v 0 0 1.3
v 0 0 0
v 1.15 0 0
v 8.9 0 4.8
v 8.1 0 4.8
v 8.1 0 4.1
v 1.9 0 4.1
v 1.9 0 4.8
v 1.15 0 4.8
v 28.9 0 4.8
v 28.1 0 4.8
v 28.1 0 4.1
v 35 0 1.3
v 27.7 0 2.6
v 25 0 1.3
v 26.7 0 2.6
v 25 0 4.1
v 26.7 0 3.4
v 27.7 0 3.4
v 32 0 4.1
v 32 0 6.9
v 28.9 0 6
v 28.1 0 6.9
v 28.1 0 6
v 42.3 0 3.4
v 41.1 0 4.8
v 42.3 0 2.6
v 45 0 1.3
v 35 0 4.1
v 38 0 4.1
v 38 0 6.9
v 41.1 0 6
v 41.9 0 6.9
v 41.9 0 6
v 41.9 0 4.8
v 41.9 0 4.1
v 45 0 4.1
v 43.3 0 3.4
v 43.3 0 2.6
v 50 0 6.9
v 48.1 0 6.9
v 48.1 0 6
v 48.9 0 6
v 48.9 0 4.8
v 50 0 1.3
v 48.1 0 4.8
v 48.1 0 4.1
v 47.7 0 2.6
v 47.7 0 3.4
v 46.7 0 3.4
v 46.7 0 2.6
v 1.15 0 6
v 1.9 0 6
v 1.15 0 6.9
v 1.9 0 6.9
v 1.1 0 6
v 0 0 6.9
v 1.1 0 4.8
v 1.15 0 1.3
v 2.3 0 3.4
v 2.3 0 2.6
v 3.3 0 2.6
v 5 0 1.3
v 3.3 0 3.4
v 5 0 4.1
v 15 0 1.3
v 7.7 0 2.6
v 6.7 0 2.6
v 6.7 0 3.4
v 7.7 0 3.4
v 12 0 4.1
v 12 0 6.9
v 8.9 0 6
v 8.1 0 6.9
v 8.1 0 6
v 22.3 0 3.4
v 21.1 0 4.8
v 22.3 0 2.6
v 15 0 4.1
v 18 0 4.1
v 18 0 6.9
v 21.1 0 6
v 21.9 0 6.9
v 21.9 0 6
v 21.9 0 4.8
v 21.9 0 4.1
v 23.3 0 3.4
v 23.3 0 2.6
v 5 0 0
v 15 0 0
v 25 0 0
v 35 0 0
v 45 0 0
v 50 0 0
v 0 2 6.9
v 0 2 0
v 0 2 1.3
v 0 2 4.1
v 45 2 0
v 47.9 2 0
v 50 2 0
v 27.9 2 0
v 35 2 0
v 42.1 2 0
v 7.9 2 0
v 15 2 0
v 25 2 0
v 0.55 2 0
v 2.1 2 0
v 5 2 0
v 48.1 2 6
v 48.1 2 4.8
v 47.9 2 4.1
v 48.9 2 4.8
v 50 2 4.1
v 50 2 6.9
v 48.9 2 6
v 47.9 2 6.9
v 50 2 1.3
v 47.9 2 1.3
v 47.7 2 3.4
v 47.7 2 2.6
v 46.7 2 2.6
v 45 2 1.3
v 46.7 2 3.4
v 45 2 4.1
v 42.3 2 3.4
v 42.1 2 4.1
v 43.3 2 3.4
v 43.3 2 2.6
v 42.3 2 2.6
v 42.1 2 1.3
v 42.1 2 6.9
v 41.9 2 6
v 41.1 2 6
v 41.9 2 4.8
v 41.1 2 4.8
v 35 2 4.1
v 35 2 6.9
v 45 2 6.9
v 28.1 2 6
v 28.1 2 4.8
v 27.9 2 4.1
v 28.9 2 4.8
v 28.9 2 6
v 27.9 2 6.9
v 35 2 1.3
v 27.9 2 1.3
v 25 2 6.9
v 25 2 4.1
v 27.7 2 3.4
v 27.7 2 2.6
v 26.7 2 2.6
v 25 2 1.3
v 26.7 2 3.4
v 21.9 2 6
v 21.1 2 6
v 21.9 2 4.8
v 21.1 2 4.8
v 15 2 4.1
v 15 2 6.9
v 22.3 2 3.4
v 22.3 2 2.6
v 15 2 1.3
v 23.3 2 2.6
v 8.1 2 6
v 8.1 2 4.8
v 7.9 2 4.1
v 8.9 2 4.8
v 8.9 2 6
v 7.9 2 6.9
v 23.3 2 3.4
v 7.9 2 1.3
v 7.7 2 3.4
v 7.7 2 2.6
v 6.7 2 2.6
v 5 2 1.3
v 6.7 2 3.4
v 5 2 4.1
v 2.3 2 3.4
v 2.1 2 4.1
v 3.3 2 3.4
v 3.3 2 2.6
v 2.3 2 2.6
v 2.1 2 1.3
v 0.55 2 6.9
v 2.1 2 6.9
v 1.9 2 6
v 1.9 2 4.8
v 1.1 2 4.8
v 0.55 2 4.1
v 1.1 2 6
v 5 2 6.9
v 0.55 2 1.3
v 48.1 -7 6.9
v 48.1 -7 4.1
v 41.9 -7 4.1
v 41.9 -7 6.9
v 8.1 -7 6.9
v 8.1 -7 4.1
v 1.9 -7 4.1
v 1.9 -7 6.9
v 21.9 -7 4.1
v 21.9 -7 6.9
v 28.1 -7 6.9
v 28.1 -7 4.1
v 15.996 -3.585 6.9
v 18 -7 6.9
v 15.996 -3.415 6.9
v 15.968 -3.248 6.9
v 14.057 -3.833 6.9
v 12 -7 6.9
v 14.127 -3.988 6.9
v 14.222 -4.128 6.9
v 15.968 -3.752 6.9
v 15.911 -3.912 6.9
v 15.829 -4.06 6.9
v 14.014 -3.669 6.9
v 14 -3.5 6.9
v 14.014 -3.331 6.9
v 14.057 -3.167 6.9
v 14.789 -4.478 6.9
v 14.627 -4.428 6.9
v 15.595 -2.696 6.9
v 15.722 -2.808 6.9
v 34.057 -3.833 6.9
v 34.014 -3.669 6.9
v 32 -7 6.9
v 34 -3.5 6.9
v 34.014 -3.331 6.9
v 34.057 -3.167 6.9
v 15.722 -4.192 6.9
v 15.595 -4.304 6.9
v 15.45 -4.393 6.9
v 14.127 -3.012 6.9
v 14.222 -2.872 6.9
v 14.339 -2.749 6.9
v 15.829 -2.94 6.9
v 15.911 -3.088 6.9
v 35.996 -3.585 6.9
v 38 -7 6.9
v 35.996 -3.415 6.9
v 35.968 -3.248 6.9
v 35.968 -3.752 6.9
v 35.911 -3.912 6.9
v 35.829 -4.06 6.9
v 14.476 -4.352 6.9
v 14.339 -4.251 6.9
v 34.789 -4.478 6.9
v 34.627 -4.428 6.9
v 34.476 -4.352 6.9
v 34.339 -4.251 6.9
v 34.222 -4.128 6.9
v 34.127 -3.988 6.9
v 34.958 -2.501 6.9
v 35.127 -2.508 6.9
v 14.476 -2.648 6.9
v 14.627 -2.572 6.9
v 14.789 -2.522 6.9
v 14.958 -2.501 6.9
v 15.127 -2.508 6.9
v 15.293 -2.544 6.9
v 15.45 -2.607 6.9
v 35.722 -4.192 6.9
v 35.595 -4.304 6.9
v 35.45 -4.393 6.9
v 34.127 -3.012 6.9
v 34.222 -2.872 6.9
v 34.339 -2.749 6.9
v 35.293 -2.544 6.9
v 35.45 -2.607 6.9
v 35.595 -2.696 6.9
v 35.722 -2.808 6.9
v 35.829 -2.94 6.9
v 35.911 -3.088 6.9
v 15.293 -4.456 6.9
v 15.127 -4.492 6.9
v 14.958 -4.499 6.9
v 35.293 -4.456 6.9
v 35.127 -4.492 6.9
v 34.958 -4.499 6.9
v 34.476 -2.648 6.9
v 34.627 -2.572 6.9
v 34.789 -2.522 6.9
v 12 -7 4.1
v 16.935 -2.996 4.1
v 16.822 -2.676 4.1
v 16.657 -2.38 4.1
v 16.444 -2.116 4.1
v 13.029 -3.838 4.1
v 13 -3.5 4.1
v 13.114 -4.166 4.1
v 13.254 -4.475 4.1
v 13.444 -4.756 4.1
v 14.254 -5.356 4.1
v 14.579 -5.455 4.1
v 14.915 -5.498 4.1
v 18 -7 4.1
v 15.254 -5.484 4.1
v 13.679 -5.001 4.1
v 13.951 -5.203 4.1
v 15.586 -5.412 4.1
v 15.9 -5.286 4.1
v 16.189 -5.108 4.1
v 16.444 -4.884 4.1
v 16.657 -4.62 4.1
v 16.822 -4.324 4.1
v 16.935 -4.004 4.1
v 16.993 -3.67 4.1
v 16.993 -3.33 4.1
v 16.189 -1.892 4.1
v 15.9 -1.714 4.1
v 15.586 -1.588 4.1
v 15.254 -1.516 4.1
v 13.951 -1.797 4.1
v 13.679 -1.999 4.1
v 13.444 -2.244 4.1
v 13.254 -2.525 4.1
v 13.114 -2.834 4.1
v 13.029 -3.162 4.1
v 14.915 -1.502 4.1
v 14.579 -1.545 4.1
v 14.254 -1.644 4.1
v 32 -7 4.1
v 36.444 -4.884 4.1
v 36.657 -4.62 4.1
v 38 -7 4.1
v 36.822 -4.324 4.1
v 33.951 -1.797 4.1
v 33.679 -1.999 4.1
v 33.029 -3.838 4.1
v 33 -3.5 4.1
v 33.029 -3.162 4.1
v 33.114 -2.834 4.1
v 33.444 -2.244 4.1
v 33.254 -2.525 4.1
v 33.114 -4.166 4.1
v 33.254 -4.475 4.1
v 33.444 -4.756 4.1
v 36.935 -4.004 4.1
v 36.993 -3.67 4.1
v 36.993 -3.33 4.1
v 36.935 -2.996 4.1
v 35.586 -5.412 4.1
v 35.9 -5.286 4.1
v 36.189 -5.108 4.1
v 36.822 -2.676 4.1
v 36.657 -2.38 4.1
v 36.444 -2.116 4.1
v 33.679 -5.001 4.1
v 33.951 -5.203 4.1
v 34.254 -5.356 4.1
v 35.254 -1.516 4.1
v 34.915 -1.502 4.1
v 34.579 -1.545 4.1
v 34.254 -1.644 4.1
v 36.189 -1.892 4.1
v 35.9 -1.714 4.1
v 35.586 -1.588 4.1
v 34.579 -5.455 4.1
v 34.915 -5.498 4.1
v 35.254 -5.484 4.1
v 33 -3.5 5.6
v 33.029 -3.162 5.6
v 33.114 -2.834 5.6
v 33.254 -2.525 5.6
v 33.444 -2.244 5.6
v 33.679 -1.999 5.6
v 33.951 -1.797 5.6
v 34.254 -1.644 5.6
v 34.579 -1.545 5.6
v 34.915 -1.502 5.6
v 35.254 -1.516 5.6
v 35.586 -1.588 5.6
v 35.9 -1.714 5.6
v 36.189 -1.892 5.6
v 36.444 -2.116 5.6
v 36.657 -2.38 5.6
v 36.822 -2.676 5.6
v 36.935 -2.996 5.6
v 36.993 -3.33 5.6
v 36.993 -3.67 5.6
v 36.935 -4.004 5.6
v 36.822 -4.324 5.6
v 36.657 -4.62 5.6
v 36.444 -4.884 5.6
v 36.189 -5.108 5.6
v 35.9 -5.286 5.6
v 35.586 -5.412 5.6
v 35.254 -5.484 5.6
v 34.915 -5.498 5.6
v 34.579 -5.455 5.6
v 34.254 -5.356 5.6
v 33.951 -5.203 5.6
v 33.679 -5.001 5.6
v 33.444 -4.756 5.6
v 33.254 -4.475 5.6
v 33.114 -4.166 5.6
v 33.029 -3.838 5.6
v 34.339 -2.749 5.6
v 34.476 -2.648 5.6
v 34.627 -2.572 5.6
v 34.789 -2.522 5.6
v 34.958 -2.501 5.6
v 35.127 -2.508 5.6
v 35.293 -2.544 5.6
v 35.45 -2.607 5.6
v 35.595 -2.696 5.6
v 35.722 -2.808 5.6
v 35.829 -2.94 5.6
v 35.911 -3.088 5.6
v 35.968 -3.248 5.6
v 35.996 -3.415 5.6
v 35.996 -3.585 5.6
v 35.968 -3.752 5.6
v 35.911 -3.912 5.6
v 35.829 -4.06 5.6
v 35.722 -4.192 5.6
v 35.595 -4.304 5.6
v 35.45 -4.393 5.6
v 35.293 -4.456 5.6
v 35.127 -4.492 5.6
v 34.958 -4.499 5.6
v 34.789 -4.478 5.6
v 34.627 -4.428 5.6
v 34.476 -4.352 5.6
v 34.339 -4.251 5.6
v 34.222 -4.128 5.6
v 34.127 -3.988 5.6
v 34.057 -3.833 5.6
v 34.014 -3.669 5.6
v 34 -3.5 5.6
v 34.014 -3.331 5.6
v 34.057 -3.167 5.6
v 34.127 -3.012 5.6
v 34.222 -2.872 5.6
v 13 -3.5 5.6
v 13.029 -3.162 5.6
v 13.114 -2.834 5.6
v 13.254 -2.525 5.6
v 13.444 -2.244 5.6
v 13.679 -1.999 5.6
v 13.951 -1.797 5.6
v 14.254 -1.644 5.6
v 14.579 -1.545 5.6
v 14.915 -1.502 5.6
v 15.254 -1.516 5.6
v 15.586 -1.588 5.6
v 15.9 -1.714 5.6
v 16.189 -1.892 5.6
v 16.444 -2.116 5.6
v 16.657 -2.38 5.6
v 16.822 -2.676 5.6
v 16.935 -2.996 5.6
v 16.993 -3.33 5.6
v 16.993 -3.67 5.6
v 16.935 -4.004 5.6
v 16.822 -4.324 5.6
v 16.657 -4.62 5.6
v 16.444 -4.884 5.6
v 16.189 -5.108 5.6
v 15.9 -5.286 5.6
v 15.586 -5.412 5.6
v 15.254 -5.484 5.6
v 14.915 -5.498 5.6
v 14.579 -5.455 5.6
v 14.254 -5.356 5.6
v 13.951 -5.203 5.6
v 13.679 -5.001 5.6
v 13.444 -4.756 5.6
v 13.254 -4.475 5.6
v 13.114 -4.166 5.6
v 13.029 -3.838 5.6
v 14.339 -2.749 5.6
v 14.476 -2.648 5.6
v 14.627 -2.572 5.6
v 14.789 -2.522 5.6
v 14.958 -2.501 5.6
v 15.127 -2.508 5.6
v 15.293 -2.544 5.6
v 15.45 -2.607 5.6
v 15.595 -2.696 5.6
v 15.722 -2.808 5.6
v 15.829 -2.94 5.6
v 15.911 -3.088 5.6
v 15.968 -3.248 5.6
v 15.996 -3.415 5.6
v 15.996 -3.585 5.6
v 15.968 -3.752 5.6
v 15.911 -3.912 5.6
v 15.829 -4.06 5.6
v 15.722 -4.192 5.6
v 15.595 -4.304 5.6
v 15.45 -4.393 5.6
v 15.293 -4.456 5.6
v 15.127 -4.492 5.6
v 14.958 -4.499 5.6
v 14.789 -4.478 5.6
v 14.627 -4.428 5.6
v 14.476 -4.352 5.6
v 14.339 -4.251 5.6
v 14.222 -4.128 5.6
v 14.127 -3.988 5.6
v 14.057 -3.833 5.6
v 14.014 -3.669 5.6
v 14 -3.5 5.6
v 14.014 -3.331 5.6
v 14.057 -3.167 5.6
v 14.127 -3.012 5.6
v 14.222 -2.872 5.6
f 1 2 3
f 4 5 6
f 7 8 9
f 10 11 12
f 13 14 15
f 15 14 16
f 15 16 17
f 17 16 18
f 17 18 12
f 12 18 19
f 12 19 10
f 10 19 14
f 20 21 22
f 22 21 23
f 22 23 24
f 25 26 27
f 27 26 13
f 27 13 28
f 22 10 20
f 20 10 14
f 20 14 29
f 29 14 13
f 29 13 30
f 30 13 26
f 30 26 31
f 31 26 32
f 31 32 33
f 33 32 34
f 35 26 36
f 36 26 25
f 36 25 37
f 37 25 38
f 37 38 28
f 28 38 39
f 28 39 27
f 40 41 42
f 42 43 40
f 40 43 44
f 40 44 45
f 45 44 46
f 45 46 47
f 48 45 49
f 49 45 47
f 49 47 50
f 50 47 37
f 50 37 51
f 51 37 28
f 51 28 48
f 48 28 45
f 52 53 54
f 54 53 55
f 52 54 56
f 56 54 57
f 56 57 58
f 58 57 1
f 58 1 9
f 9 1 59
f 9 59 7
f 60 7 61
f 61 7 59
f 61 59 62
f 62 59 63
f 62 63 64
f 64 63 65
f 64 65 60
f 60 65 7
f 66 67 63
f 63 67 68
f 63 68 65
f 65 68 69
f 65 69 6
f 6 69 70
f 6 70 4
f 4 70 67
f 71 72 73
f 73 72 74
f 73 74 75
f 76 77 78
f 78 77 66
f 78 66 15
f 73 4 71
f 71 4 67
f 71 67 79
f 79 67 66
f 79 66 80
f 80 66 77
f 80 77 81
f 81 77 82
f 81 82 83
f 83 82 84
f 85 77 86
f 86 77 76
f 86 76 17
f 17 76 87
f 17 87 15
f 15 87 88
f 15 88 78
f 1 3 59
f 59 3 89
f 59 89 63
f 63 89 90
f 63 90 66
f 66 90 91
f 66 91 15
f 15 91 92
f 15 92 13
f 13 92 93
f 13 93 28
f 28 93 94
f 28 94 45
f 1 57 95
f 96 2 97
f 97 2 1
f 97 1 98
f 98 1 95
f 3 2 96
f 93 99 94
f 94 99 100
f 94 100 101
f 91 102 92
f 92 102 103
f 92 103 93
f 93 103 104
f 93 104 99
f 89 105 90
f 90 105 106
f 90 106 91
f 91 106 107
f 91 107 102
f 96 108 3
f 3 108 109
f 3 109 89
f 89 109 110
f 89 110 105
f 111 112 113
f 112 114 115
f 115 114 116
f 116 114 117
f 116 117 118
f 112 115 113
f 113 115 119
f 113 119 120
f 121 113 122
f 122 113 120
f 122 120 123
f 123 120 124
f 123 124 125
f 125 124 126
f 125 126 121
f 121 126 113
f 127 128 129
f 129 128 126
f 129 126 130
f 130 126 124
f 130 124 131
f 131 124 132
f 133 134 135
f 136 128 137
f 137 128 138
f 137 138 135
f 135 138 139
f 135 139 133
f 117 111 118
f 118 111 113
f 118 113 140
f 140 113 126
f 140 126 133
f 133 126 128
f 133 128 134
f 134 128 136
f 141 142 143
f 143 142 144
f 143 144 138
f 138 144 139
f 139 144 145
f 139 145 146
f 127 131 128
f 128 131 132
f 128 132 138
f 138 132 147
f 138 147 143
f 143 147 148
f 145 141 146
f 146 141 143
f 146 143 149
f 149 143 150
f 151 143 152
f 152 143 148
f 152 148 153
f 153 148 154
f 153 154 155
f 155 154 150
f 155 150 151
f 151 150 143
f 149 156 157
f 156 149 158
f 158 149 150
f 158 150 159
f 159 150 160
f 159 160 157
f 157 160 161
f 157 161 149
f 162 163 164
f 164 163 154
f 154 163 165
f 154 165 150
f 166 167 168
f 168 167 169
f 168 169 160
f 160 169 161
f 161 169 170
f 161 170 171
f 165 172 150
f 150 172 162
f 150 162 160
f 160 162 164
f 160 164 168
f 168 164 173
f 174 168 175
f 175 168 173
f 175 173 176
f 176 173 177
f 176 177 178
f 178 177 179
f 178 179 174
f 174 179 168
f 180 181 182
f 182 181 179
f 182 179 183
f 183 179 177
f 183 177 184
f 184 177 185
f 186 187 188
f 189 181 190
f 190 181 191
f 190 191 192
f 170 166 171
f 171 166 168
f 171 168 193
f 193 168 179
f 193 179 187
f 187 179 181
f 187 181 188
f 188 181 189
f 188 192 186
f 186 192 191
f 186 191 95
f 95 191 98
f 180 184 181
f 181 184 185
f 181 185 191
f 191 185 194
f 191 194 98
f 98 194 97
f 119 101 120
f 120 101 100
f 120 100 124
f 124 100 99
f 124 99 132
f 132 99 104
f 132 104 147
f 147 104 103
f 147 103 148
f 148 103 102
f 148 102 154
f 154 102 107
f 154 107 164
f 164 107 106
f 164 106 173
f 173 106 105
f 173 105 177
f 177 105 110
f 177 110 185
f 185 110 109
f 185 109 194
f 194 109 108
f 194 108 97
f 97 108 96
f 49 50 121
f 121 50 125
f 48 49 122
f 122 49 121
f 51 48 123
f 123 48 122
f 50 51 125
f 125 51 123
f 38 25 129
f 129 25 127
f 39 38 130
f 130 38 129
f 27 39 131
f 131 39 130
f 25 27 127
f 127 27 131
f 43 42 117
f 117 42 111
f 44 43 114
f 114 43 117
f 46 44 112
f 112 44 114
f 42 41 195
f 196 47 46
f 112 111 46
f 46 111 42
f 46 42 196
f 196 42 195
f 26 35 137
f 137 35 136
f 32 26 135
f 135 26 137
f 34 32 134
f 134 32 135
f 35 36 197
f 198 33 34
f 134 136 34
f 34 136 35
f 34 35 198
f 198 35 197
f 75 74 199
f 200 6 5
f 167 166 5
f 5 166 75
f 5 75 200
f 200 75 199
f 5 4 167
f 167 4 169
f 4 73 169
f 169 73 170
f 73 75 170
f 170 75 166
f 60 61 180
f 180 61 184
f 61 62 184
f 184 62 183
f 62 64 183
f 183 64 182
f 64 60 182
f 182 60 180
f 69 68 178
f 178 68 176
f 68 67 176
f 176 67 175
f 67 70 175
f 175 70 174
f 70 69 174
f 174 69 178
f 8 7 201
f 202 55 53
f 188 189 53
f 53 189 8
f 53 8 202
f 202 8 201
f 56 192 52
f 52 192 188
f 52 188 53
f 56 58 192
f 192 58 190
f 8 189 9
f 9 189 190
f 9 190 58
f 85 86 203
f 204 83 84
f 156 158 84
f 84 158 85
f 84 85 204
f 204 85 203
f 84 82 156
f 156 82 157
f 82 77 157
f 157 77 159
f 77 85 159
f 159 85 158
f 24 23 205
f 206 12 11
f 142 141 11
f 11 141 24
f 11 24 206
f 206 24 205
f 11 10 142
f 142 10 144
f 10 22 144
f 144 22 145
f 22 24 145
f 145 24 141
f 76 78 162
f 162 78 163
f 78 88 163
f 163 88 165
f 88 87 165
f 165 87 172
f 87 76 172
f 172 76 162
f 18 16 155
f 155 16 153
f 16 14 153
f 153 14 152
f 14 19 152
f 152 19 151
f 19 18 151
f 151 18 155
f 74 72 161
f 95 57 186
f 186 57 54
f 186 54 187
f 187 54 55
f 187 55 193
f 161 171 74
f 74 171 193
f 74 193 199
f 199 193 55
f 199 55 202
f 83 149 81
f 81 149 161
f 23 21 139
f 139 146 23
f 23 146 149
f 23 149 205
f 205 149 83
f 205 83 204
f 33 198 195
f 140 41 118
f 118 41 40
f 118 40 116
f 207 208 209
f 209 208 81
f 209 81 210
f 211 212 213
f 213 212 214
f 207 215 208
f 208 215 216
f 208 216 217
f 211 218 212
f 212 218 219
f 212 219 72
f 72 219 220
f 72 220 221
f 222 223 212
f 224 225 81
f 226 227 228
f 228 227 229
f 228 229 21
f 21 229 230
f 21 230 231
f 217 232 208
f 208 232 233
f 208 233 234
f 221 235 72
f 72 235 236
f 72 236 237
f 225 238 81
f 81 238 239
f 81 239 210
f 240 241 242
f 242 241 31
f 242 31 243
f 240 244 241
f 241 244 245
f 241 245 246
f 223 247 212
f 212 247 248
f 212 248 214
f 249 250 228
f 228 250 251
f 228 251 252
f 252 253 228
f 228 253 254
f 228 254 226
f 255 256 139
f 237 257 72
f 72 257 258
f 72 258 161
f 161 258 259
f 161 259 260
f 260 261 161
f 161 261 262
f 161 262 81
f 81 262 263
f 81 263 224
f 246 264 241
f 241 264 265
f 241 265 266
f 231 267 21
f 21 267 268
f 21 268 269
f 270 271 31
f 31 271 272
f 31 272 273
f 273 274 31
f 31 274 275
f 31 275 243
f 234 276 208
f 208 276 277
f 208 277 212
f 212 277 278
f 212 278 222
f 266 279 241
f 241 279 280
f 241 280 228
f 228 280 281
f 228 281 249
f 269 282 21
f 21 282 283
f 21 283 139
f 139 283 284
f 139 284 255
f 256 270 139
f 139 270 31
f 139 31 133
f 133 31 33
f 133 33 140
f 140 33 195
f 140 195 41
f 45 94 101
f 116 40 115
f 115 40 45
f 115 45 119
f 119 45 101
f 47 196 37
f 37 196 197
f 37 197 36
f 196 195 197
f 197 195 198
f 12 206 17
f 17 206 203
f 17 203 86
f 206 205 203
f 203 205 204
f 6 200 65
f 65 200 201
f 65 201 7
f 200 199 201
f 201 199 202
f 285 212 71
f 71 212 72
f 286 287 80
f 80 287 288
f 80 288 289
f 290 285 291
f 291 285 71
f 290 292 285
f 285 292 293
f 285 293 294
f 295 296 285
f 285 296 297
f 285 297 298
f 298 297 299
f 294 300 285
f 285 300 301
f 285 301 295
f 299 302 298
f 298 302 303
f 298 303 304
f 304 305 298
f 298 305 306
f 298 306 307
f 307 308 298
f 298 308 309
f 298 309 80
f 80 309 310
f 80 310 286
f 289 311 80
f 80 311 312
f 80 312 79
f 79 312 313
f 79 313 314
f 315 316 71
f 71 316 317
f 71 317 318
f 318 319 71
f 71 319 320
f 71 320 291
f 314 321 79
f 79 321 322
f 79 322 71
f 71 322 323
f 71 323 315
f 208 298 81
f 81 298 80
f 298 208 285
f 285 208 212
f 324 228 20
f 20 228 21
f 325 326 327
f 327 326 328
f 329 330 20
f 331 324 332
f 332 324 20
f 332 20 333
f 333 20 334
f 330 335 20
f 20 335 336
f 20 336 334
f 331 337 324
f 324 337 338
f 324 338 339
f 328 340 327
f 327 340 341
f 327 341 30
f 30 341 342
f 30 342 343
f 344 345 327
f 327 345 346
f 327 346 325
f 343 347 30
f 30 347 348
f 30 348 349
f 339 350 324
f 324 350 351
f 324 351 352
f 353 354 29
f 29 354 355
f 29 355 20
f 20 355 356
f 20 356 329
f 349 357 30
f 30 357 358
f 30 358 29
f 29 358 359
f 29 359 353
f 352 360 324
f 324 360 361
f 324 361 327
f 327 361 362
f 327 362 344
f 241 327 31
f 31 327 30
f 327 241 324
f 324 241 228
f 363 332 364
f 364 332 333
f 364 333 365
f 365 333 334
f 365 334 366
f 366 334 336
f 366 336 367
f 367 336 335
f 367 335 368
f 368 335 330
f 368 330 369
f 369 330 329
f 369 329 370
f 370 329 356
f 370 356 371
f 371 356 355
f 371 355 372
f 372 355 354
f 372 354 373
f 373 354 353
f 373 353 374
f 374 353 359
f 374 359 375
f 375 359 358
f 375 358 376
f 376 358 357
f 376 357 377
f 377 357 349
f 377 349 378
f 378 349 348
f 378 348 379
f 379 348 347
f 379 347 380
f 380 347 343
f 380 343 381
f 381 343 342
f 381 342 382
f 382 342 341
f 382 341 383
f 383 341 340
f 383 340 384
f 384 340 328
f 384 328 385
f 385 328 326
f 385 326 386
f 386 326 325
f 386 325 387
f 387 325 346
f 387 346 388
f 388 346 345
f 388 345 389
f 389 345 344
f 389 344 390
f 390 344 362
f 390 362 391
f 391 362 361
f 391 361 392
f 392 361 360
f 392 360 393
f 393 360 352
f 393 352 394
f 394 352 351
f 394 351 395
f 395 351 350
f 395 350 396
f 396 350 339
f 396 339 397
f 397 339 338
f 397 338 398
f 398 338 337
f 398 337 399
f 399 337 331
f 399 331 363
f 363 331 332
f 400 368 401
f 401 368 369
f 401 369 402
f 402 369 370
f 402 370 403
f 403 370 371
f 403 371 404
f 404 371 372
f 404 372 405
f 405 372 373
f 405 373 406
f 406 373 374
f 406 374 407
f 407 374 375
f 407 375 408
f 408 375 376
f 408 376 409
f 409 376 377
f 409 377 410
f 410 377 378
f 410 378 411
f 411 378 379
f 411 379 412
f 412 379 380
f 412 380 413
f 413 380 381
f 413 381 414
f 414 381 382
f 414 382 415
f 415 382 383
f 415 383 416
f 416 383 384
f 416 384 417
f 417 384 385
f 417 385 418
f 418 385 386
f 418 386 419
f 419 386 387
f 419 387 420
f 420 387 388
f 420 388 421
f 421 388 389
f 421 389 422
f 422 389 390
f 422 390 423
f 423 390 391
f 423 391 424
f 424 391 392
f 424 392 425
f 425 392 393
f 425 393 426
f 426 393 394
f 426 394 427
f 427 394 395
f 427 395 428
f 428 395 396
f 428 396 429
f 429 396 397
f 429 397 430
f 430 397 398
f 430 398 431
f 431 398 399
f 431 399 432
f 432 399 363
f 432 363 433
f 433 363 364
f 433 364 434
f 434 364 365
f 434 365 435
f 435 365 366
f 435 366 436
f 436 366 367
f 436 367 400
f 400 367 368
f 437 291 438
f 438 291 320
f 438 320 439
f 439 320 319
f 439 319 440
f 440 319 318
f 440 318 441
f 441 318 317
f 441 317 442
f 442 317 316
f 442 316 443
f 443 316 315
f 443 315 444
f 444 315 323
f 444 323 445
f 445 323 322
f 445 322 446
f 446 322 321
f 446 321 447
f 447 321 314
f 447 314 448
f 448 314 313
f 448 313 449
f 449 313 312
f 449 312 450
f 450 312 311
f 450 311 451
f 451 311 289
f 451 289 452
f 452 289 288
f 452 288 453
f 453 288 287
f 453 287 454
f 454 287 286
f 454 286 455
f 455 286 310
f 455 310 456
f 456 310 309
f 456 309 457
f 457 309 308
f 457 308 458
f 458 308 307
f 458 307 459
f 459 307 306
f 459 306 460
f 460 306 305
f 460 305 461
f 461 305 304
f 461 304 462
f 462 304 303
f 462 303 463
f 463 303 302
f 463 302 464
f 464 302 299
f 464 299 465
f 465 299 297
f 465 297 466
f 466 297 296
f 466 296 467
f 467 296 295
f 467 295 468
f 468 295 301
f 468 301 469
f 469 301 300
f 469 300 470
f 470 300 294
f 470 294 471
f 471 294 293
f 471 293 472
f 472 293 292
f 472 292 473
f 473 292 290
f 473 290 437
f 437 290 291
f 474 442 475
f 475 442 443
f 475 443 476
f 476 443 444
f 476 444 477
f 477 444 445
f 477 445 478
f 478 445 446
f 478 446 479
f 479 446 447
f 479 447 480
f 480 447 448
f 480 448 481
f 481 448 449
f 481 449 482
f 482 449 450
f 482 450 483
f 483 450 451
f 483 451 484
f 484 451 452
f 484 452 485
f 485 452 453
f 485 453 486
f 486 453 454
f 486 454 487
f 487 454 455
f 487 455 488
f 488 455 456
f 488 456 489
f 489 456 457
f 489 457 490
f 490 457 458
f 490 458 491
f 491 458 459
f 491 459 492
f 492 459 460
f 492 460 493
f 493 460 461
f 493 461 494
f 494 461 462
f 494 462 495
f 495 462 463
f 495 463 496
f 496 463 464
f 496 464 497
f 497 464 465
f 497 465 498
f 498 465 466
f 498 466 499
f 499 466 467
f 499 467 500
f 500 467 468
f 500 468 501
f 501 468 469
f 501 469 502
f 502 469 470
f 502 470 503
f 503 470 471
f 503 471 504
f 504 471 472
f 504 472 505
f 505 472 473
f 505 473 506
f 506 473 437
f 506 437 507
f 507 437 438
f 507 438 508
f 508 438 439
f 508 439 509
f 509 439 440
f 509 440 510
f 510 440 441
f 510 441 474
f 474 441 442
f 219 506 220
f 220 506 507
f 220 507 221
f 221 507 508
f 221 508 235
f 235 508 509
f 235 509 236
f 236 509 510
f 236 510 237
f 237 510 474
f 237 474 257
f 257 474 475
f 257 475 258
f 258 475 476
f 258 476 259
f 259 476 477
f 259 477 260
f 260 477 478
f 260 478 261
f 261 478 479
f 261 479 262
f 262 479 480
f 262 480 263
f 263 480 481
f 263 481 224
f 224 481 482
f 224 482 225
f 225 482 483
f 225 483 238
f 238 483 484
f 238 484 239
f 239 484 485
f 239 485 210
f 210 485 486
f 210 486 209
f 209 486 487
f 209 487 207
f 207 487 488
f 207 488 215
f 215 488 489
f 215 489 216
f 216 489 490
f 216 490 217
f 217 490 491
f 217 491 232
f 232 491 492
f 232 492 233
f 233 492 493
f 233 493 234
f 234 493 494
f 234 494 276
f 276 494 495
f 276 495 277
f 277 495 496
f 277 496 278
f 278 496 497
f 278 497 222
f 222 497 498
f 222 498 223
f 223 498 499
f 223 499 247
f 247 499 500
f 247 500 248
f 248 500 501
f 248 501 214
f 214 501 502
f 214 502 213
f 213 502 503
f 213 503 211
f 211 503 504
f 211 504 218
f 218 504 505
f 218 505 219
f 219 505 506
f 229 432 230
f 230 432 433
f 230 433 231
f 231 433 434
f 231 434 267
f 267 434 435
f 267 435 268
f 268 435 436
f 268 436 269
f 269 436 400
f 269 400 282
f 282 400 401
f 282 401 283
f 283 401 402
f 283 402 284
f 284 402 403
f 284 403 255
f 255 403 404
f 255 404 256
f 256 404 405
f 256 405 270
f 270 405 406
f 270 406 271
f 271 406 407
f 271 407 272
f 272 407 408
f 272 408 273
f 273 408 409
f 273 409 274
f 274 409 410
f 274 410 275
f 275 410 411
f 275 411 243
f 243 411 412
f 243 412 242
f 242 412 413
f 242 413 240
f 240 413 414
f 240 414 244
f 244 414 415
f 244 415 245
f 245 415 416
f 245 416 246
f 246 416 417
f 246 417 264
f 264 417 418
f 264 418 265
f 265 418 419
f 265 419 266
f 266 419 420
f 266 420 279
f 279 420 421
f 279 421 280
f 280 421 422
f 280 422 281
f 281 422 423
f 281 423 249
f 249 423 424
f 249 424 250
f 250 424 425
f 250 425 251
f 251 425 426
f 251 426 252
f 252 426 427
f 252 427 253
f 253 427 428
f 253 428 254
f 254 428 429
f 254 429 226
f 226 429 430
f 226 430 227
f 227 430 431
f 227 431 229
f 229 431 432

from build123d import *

# Parameters (mm, degrees)
SKETCH_1_W             = 117.567875581
SKETCH_1_H             = 35.211732604
EXTRUDE_1_DEPTH        = 2
SKETCH_3_W             = 0.8
SKETCH_3_H             = 1.2
SKETCH_3_W_2           = 1
SKETCH_3_H_2           = 0.8
CUT_EXTRUDE_1_DEPTH    = 123.743926455
PATTERN_LINEAR_1_COUNT = 3
PATTERN_LINEAR_1_PITCH = 20
SKETCH_4_OUTSIDE_W     = 144.116
SKETCH_4_OUTSIDE_H     = 61.76
SKETCH_4_OUTSIDE_W_2   = 50
SKETCH_4_OUTSIDE_H_2   = 6.9
CUT_EXTRUDE_2_DEPTH    = 123.743926455
SKETCH_5_W             = 6.2
SKETCH_5_H             = 2.8
SKETCH_5_W_2           = 6
EXTRUDE_2_DEPTH        = 7
SKETCH_6_R             = 2
CUT_EXTRUDE_3_DEPTH    = 1.5
SKETCH_6_3_R           = 1
CUT_EXTRUDE_4_DEPTH    = 51.653825127


with BuildPart() as part:
    # 草图1 → 凸台-拉伸1 (new body)
    with BuildSketch(Plane(origin=(0, 0, 0), x_dir=(1, 0, 0), z_dir=(0, 1, 0))):
        with Locations((58.783937791, -17.605866302)):
            Rectangle(SKETCH_1_W, SKETCH_1_H)
    extrude(amount=EXTRUDE_1_DEPTH)

    # 草图3 → 切除-拉伸1 (cut, through all)
    with BuildSketch(Plane(origin=(0, 2, 0), x_dir=(1, 0, 0), z_dir=(0, 1, 0))):
        with Locations((1.5, -5.4)):
            Rectangle(SKETCH_3_W, SKETCH_3_H)
        with Locations((8.5, -5.4)):
            Rectangle(SKETCH_3_W, SKETCH_3_H)
        with Locations((2.8, -3)):
            Rectangle(SKETCH_3_W_2, SKETCH_3_H_2)
        with Locations((7.2, -3)):
            Rectangle(SKETCH_3_W_2, SKETCH_3_H_2)
    cut_extrude_1 = extrude(amount=-CUT_EXTRUDE_1_DEPTH, mode=Mode.SUBTRACT)

    # 阵列(线性)1: 切除-拉伸1 ×3
    with Locations(*[(i * PATTERN_LINEAR_1_PITCH, 0, 0) for i in range(1, PATTERN_LINEAR_1_COUNT)]):
        add(cut_extrude_1, mode=Mode.SUBTRACT)

    # 草图4 outside → 切除-拉伸2 (cut, through all)
    with BuildSketch(Plane.XZ):
        with Locations((58.784, 17.606)):
            Rectangle(SKETCH_4_OUTSIDE_W, SKETCH_4_OUTSIDE_H)
        with Locations((25, 3.45)):
            Rectangle(SKETCH_4_OUTSIDE_W_2, SKETCH_4_OUTSIDE_H_2, mode=Mode.SUBTRACT)
    extrude(amount=-CUT_EXTRUDE_2_DEPTH, mode=Mode.SUBTRACT)

    # 草图5 → 凸台-拉伸2 (add)
    with BuildSketch(Plane.XZ):
        with Locations((45, 5.5)):
            Rectangle(SKETCH_5_W, SKETCH_5_H)
        with Locations((25, 5.5)):
            Rectangle(SKETCH_5_W, SKETCH_5_H)
        with Locations((5, 5.5)):
            Rectangle(SKETCH_5_W, SKETCH_5_H)
        with Locations((15, 5.5)):
            Rectangle(SKETCH_5_W_2, SKETCH_5_H)
        with Locations((35, 5.5)):
            Rectangle(SKETCH_5_W_2, SKETCH_5_H)
    extrude(amount=EXTRUDE_2_DEPTH)

    # 草图6 → 切除-拉伸3 (cut)
    with BuildSketch(Plane(origin=(0, 0, 4.1), x_dir=(-1, 0, 0), z_dir=(0, 0, -1))):
        with Locations((-35, -3.5)):
            Circle(SKETCH_6_R)
        with Locations((-15, -3.5)):
            Circle(SKETCH_6_R)
    extrude(amount=-CUT_EXTRUDE_3_DEPTH, mode=Mode.SUBTRACT)

    # 草图6<3> → 切除-拉伸4 (cut, through all)
    with BuildSketch(Plane(origin=(0, 0, 4.1), x_dir=(-1, 0, 0), z_dir=(0, 0, -1))):
        with Locations((-35, -3.5)):
            Circle(SKETCH_6_3_R)
        with Locations((-15, -3.5)):
            Circle(SKETCH_6_3_R)
    extrude(amount=-CUT_EXTRUDE_4_DEPTH, mode=Mode.SUBTRACT)


solid = part.part
